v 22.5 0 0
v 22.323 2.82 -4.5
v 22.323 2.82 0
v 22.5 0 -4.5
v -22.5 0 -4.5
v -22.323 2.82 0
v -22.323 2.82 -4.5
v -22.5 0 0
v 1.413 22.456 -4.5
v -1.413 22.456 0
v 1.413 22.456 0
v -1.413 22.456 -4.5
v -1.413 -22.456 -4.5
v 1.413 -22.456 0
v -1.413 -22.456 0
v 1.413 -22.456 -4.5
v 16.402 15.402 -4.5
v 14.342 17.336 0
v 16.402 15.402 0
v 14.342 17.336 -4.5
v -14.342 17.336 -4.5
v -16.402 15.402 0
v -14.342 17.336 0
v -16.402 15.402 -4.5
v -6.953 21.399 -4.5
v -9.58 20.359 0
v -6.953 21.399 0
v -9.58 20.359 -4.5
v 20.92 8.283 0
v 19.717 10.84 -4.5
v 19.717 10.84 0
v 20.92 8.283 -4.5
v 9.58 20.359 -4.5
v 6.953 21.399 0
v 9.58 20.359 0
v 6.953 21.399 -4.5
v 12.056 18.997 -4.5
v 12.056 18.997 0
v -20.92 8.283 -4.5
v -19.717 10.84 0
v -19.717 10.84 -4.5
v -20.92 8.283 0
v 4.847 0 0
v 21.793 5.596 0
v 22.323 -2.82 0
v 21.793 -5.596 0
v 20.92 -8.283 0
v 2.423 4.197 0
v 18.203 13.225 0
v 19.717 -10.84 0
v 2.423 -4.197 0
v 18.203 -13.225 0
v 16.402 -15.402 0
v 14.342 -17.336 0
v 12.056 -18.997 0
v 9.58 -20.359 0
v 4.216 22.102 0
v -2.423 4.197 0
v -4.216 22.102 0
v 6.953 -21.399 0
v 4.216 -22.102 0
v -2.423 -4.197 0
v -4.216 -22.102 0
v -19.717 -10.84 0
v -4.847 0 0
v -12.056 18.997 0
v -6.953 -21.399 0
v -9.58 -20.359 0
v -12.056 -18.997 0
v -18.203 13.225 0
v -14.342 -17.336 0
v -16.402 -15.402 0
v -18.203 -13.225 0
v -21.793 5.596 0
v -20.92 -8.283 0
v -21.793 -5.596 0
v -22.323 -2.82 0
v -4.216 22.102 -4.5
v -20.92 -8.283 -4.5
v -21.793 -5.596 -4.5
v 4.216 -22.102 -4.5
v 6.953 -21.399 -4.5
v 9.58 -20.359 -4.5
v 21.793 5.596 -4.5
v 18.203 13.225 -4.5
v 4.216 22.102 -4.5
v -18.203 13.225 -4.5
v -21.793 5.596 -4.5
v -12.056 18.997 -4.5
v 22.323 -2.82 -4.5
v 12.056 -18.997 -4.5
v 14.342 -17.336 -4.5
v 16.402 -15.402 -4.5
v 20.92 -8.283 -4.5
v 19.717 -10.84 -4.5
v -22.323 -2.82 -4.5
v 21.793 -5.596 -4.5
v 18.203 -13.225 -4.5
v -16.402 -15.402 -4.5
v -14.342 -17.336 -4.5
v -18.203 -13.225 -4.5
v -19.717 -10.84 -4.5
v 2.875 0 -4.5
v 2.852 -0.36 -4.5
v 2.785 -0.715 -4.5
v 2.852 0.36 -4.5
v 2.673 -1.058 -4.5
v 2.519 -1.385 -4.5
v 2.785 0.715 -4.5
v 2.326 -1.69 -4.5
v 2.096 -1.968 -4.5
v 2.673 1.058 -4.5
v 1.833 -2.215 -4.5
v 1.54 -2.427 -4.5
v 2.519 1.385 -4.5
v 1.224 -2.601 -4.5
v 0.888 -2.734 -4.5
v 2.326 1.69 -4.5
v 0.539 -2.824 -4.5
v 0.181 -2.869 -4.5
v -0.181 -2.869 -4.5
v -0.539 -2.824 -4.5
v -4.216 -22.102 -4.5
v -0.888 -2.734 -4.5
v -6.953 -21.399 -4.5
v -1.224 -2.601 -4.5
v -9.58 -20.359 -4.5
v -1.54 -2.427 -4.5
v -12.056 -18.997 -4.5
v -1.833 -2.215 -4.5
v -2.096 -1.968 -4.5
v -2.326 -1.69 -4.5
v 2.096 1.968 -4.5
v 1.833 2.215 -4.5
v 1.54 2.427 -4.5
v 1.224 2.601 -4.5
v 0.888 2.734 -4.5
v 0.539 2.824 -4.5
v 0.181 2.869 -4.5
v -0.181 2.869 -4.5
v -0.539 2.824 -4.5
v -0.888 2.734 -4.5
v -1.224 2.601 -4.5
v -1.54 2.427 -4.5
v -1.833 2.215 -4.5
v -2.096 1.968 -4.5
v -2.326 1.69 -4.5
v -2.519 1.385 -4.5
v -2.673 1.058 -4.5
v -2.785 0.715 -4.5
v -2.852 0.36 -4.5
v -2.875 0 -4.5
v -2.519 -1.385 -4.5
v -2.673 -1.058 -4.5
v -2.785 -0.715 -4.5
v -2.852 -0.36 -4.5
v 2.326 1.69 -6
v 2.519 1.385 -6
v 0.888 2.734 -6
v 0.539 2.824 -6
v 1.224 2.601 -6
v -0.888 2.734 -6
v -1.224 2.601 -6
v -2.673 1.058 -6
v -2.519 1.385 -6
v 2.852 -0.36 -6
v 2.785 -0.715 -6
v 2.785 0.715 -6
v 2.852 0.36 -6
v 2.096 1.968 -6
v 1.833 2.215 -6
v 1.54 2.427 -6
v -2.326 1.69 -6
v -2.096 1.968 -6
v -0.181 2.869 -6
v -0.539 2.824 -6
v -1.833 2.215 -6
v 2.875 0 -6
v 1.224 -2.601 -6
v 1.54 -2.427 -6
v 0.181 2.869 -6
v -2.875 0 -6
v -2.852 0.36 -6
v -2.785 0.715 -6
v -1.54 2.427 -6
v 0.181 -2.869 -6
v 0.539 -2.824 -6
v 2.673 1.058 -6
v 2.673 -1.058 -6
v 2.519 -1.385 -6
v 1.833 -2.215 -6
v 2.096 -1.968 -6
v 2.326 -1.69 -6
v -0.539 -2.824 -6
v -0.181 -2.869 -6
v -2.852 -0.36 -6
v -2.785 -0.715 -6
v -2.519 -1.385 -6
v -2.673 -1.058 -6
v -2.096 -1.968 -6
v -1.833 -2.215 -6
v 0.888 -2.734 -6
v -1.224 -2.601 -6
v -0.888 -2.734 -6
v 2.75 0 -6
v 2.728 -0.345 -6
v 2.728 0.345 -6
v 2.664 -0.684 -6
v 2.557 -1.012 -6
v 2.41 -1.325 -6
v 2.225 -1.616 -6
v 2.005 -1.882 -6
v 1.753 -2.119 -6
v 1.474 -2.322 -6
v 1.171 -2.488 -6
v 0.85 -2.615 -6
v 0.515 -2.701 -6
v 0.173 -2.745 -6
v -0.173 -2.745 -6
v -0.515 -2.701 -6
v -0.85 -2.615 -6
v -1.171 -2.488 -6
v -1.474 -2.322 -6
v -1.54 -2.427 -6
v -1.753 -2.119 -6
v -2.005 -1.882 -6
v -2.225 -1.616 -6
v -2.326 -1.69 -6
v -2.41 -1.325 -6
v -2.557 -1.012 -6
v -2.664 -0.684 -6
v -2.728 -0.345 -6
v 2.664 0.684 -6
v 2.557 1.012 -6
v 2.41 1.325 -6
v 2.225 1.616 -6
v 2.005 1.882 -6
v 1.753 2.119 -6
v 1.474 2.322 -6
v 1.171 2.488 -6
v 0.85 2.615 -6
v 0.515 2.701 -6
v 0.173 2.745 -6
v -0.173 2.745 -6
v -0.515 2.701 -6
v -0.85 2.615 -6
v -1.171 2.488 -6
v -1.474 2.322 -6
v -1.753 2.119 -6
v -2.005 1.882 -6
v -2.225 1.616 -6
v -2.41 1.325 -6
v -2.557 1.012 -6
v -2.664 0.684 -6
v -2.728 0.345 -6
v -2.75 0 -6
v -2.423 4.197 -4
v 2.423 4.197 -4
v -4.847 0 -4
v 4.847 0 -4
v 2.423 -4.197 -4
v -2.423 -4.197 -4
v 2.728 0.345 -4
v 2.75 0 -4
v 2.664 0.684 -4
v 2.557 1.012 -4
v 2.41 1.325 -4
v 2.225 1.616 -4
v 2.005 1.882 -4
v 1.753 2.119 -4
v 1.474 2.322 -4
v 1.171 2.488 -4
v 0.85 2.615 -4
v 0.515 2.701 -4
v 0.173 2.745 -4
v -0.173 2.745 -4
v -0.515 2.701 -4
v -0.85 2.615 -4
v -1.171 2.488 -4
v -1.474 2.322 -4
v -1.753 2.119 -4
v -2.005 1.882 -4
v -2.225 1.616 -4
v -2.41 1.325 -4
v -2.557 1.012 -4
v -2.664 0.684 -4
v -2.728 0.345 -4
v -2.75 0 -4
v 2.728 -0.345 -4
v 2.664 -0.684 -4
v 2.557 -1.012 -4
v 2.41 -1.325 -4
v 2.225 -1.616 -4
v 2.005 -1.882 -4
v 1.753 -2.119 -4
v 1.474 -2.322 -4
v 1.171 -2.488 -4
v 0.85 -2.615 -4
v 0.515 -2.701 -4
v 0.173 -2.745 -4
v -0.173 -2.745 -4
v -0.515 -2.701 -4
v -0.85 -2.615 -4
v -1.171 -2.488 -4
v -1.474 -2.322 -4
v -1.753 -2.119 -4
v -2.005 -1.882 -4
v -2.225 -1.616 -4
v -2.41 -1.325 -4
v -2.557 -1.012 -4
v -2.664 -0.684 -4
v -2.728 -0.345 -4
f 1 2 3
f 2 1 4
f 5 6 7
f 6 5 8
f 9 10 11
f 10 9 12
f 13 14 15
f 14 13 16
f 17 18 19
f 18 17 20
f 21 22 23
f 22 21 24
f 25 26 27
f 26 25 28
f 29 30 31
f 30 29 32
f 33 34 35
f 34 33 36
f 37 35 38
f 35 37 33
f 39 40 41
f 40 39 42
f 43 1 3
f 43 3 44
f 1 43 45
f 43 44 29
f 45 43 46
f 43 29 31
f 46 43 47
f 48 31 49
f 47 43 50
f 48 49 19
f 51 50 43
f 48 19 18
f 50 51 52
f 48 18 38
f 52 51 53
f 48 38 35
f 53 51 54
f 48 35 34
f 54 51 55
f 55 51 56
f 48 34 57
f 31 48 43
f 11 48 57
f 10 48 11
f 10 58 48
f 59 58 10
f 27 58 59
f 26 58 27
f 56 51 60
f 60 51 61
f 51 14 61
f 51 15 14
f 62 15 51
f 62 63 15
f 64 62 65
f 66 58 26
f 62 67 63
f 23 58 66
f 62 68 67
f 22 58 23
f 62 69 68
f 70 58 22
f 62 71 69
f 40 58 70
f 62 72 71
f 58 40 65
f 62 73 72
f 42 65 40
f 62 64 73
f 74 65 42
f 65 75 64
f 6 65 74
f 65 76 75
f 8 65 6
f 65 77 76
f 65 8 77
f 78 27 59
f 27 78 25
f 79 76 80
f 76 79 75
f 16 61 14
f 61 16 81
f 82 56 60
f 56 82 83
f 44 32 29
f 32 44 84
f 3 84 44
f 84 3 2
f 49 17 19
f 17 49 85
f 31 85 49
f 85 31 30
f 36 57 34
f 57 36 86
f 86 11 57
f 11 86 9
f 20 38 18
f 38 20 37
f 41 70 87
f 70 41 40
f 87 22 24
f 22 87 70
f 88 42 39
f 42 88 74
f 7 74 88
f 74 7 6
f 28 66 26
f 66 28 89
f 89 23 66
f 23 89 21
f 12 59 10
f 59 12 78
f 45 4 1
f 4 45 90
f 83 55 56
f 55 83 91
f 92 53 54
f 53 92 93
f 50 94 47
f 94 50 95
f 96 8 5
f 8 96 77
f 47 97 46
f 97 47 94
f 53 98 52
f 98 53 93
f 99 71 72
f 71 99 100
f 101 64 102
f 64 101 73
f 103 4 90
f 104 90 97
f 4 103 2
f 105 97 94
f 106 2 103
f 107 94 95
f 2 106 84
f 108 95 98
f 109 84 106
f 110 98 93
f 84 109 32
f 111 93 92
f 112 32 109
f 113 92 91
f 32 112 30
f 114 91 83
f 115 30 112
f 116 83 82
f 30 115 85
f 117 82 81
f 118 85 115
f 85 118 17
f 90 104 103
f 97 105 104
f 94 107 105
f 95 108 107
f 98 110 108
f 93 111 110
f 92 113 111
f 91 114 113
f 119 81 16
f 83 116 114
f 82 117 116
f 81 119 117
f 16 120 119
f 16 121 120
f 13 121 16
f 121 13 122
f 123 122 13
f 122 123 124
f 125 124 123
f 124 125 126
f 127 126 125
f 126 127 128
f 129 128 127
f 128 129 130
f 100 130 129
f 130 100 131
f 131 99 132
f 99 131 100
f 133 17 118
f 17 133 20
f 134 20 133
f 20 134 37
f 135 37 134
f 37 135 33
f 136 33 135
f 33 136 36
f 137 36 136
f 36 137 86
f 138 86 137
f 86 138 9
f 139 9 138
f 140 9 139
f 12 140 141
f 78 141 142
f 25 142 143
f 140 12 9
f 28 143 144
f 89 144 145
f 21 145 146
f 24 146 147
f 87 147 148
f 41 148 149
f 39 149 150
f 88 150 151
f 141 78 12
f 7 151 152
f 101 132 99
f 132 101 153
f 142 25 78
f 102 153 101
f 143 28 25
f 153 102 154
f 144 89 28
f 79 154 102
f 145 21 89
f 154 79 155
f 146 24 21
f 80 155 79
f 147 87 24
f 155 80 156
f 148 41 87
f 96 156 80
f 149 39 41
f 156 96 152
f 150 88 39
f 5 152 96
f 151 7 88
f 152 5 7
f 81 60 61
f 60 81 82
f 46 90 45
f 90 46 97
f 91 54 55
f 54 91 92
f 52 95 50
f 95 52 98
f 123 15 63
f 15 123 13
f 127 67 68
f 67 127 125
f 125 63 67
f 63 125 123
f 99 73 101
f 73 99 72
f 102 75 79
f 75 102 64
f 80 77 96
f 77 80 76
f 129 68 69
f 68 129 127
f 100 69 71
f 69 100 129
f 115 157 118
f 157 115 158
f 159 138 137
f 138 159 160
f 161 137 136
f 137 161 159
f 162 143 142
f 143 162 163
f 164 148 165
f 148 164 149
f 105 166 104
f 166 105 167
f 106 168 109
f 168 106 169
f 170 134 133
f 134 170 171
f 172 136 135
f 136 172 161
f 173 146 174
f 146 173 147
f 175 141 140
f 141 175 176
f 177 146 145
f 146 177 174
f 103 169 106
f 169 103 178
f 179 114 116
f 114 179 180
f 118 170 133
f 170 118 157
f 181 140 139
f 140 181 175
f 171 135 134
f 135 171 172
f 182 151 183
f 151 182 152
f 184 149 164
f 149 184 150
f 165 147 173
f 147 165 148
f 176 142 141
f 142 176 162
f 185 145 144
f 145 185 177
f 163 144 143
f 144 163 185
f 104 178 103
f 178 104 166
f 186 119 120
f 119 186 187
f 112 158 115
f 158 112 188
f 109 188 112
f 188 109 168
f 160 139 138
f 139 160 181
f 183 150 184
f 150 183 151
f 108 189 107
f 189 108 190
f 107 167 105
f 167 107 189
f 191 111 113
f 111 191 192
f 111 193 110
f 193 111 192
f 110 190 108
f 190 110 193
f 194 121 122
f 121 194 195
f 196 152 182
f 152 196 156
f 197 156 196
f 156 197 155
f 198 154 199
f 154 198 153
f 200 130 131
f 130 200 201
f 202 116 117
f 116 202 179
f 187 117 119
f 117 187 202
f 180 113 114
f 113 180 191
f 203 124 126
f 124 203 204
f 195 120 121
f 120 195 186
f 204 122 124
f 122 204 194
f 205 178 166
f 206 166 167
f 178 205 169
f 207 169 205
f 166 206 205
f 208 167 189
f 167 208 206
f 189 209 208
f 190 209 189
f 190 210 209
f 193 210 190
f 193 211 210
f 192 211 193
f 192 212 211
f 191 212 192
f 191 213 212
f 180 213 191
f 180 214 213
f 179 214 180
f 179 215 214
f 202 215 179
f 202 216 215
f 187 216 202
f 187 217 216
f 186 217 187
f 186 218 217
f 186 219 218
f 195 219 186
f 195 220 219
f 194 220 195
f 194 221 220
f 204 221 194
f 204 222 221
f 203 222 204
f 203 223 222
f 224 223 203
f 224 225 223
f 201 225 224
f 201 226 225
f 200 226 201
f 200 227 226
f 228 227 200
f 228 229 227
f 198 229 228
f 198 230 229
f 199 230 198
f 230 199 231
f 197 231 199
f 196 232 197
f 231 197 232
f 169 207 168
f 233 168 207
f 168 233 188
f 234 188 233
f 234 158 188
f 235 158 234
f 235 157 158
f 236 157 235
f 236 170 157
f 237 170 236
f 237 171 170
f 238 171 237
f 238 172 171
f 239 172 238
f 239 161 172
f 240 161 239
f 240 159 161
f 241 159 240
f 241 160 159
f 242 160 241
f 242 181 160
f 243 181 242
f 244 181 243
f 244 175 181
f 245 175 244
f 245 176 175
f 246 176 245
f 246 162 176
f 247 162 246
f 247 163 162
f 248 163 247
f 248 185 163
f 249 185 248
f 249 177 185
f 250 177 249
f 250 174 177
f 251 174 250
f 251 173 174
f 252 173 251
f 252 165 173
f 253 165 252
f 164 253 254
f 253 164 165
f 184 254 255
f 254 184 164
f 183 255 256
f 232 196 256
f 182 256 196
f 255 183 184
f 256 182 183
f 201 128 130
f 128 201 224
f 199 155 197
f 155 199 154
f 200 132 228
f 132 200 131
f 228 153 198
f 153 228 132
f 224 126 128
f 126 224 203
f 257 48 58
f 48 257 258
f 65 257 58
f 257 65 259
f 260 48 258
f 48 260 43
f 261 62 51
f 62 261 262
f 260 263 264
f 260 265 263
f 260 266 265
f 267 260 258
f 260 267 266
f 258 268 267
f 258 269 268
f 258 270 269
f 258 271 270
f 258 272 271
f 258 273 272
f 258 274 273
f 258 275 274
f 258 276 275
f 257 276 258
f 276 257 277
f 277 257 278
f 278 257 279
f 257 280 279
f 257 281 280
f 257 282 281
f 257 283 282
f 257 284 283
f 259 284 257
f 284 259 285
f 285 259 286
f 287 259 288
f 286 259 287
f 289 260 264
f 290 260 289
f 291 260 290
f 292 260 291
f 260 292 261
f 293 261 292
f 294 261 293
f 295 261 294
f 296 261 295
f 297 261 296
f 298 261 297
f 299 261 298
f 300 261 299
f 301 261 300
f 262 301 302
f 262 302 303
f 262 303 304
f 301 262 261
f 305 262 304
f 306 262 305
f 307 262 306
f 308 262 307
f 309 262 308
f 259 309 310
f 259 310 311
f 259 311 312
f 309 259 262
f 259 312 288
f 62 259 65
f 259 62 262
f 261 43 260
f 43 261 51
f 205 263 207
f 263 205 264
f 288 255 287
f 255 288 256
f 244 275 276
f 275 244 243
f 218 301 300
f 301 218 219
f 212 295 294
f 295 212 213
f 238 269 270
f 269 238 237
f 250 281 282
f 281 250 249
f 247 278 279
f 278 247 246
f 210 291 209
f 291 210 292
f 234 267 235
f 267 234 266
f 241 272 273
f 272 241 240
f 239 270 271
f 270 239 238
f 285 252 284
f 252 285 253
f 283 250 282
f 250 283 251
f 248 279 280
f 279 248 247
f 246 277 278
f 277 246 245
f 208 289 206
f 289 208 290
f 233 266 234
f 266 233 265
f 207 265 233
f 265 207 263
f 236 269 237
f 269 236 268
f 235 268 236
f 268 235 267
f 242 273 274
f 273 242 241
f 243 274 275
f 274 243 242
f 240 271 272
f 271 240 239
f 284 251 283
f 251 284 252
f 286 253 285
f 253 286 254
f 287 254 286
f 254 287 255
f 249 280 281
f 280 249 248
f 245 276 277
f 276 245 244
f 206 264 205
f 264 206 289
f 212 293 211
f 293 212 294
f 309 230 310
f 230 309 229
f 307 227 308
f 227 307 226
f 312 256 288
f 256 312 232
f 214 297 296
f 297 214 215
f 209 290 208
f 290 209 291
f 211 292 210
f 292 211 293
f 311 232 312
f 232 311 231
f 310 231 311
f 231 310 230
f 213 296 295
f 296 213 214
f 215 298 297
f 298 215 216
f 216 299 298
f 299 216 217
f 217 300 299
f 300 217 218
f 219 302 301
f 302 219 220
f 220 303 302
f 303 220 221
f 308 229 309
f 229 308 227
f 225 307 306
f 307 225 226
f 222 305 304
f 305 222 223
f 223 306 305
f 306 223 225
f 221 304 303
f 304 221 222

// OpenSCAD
$fn = 50;


difference() {
	union() {
		translate(v = [0, 0, -4.5000000000]) {
			cylinder(h = 4.5000000000, r = 22.5000000000);
		}
		translate(v = [0, 0, -6.0000000000]) {
			cylinder(h = 6, r = 2.8750000000);
		}
	}
	union() {
		translate(v = [0, 0, 0]) {
			rotate(a = [0, 0, 0]) {
				difference() {
					union() {
						translate(v = [0, 0, -4]) {
							linear_extrude(height = 4) {
								polygon(points = [[4.8468000000, 0.0000000000], [2.4234000000, 4.1974519271], [-2.4234000000, 4.1974519271], [-4.8468000000, 0.0000000000], [-2.4234000000, -4.1974519271], [2.4234000000, -4.1974519271]]);
							}
						}
					}
					union();
				}
			}
		}
		#translate(v = [0, 0, -100.0000000000]) {
			cylinder(h = 200, r = 2.7500000000);
		}
	}
}
